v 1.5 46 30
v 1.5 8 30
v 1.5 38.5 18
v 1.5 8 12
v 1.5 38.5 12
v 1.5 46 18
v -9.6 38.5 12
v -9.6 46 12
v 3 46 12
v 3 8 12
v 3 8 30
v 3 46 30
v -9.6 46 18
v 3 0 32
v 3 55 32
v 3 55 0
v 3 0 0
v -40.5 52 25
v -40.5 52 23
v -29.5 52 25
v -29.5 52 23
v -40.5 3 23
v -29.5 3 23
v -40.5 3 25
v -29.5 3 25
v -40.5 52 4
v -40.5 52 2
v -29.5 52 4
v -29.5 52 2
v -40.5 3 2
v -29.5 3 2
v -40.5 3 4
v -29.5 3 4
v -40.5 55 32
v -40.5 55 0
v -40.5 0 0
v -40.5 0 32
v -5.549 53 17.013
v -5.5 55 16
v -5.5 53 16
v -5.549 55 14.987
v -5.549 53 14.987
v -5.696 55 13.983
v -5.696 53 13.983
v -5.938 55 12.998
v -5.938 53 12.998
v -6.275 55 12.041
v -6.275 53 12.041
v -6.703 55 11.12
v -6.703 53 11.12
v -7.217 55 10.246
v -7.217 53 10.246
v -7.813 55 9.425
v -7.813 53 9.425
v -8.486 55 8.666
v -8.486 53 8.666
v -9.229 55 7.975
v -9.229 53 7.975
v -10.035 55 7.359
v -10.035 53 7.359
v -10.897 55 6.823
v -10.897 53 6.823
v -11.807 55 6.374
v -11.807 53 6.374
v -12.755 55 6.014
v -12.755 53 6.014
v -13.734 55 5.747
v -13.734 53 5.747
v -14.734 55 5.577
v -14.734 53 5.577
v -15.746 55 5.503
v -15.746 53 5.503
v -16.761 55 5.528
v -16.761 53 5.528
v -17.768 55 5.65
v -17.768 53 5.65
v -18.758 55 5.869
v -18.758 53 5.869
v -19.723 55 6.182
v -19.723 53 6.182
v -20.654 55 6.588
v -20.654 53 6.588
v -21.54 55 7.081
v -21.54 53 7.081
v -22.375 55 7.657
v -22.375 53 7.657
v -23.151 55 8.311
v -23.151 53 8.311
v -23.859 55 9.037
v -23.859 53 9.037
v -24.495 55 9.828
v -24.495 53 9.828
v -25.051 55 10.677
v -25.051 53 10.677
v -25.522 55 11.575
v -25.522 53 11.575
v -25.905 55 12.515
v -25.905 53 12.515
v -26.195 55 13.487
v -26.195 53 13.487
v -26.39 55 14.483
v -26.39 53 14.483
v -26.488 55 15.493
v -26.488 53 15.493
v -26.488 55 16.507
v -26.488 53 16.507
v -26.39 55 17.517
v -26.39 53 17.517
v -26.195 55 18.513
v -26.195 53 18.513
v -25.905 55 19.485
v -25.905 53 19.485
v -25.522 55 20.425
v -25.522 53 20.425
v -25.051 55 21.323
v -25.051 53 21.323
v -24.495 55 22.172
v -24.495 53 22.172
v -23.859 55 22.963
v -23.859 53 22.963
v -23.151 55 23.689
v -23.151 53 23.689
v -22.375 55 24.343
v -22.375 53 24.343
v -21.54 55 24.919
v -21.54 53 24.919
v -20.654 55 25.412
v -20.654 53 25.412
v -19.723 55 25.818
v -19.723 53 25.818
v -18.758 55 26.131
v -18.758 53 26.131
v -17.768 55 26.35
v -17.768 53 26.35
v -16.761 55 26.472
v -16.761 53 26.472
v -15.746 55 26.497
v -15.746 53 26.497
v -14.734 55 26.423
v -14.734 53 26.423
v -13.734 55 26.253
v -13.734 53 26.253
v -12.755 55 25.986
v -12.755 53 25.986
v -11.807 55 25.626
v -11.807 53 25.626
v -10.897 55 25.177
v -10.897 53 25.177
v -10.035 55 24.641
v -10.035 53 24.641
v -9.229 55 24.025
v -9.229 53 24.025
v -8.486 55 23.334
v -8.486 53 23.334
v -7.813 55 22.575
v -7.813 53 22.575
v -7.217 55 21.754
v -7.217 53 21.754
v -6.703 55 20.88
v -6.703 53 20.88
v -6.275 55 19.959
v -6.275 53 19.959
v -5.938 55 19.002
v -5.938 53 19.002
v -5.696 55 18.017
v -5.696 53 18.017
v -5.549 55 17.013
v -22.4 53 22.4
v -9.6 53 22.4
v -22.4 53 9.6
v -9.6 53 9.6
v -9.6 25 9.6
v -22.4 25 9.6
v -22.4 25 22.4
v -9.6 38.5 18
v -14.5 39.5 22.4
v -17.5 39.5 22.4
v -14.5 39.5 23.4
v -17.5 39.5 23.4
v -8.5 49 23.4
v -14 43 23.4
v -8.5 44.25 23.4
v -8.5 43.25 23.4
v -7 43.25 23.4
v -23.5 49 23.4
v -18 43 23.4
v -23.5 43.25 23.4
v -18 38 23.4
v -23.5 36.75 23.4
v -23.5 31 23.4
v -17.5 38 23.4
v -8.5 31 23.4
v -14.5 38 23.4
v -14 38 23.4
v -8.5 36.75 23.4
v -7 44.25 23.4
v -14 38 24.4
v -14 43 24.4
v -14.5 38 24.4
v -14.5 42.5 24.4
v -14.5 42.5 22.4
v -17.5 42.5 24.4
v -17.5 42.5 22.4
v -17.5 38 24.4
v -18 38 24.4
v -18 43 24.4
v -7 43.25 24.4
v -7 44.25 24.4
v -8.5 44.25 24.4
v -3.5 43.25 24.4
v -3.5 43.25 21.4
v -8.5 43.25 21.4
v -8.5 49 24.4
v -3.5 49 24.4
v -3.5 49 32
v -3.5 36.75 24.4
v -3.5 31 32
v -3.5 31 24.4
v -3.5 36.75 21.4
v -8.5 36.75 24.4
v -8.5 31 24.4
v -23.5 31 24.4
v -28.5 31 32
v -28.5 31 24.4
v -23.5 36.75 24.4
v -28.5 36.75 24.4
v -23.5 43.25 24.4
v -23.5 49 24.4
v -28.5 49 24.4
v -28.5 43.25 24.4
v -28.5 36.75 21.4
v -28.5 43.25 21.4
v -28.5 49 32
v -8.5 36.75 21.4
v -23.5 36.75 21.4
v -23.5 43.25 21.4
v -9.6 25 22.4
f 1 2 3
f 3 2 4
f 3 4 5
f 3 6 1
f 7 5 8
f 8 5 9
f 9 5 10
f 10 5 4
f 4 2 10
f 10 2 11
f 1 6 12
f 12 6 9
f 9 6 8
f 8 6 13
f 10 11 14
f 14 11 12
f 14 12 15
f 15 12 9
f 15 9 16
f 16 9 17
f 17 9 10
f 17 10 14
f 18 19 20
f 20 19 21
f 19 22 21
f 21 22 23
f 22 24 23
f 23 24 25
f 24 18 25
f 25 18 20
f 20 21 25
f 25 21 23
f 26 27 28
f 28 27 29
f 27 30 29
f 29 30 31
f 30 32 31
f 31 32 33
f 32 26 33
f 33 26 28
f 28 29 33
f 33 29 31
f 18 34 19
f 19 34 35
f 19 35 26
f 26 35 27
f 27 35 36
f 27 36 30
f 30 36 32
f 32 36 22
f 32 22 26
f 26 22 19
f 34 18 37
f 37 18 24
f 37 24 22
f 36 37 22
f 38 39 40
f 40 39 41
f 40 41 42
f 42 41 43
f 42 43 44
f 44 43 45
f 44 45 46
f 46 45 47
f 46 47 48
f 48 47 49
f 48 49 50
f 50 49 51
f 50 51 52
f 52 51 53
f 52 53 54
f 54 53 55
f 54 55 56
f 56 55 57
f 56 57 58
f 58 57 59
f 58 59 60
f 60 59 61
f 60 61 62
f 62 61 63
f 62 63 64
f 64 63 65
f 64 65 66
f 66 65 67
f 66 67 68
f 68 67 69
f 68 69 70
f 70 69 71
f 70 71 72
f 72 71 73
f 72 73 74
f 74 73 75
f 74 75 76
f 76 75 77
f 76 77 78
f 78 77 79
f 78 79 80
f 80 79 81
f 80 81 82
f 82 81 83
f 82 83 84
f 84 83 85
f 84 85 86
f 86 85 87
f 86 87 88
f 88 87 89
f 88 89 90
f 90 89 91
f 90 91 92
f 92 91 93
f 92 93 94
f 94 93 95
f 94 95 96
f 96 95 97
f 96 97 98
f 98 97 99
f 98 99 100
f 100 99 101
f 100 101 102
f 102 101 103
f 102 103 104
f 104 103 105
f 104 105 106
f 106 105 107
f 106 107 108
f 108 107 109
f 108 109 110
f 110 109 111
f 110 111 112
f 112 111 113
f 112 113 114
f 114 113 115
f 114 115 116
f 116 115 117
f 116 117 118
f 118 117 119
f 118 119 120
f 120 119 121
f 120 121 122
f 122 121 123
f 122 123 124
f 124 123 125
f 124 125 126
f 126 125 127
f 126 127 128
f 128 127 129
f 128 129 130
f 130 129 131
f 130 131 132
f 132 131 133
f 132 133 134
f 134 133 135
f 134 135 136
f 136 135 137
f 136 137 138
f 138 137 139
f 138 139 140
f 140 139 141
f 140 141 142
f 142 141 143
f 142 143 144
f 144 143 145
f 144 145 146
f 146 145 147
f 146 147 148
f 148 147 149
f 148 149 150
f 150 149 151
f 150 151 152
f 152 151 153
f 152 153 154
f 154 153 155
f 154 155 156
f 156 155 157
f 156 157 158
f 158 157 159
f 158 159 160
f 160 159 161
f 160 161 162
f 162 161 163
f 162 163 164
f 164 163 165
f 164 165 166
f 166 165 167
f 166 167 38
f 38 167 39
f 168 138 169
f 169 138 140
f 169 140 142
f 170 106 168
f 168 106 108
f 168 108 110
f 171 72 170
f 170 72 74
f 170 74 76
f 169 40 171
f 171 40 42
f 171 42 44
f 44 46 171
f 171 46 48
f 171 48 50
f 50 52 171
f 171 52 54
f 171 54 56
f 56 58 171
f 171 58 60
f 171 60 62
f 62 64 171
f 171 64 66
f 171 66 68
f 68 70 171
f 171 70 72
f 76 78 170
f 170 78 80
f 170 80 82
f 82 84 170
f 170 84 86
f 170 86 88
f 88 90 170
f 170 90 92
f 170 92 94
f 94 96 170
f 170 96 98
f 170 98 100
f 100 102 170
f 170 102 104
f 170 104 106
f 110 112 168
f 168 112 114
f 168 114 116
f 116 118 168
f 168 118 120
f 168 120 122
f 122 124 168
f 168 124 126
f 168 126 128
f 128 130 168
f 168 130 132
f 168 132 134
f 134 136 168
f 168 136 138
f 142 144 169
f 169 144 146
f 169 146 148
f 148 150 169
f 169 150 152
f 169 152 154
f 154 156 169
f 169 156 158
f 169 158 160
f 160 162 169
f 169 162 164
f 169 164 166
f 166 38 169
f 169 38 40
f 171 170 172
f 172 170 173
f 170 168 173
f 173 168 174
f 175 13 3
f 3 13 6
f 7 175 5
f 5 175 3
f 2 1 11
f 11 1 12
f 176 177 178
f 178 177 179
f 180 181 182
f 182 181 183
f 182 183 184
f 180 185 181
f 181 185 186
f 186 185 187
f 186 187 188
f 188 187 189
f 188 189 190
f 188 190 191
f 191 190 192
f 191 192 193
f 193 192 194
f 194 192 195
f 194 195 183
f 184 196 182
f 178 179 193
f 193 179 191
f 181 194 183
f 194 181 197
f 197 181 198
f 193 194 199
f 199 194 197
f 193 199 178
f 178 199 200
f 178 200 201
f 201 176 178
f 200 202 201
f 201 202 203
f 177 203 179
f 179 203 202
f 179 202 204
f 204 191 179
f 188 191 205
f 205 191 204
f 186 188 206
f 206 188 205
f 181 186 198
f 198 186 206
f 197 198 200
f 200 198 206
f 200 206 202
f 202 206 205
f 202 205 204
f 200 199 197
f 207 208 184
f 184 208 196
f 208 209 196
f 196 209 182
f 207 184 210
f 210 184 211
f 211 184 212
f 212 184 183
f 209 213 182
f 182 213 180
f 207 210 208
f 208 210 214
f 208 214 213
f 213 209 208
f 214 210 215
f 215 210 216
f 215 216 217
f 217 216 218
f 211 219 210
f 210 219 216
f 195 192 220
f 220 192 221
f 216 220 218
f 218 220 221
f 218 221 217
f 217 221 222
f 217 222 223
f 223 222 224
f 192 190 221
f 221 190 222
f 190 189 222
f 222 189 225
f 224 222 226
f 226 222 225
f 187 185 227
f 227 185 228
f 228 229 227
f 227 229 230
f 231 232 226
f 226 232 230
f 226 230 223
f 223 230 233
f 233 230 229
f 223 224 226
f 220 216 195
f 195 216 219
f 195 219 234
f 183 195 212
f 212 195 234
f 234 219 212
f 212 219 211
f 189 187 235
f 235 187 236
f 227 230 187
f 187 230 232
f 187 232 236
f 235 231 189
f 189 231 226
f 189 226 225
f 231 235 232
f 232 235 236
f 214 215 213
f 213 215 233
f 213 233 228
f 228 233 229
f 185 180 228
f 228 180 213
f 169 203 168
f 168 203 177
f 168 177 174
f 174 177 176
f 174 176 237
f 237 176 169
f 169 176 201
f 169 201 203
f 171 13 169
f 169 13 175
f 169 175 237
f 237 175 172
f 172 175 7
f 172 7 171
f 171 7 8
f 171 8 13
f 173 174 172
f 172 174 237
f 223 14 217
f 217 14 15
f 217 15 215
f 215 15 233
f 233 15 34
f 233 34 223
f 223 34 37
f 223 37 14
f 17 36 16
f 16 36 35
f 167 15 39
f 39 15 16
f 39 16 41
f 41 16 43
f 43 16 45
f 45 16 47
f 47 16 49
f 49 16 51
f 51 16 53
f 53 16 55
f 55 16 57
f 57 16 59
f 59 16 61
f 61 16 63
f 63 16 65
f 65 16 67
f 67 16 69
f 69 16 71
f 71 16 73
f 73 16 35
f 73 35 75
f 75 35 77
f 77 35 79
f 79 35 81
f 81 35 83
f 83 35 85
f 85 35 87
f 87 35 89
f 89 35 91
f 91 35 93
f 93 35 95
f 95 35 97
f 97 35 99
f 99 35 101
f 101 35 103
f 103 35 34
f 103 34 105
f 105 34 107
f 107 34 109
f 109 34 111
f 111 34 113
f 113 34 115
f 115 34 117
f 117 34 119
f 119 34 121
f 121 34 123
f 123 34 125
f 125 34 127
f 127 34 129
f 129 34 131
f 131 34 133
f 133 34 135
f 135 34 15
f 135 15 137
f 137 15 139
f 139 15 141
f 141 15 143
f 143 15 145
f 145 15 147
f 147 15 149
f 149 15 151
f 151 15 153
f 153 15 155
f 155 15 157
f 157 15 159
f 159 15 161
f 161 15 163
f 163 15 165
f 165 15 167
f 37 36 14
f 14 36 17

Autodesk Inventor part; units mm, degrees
ref_plane "YZ Plane" through (0, 0, 0) normal (1, 0, 0) x (0, 1, 0)
ref_plane "XZ Plane" through (0, 0, 0) normal (0, 1, 0) x (-1, 0, 0)
ref_plane "XY Plane" through (0, 0, 0) normal (0, 0, 1) x (1, 0, 0)
sketch "Sketch1" plane through (0, 0, 0) normal (0, 1, 0) x (-1, 0, 0)
  line L0 (32, 32) -> (0, 32)
  line L1 (0, 32) -> (0, 0)
  line L2 (0, 0) -> (32, 0)
  line L3 (32, 0) -> (32, 32)
extrude "Extrusion1" add sketch "Sketch1" along normal blind 55
sketch "Sketch2" plane through (0, 55, 0) normal (0, 1, 0) x (1, 0, 0)
  line L0 (-9.6, -9.6) -> (-22.4, -9.6)
  line L1 (-22.4, -9.6) -> (-22.4, -22.4)
  line L2 (-22.4, -22.4) -> (-9.6, -22.4)
  line L3 (-9.6, -22.4) -> (-9.6, -9.6)
  point P0 (0, 0)
extrude "Extrusion2" cut sketch "Sketch2" against normal blind 30
sketch "Sketch3" plane through (-32, 0, 32) normal (0, 0, 1) x (1, 0, 0)
  line L0 (3.5, 49) -> (28.5, 49)
  line L1 (28.5, 49) -> (28.5, 31)
  line L2 (28.5, 31) -> (3.5, 31)
  line L3 (3.5, 31) -> (3.5, 49)
  line L4 (3.5, 49) -> (3.5, 43.25)
  line L5 (3.5, 36.75) -> (3.5, 43.25)
  line L6 (28.5, 49) -> (28.5, 43.25)
  line L7 (28.5, 36.75) -> (28.5, 43.25)
  line L8 (3.5, 43.25) -> (3.5, 36.75)
  line L9 (28.5, 43.25) -> (28.5, 36.75)
  point P0 (32, 0)
extrude "Extrusion3" cut sketch "Sketch3" against normal blind 8.6
sketch "Sketch4" plane through (-32, 0, 23.4) normal (0, 0, 1) x (1, 0, 0)
  line L0 (3.5, 49) -> (28.5, 49) projected
  line L1 (3.5, 49) -> (3.5, 43.25)
  line L2 (28.5, 31) -> (3.5, 31) projected
  line L3 (3.5, 36.75) -> (3.5, 31)
  line L4 (3.5, 31) -> (28.5, 31)
  line L5 (28.5, 31) -> (28.5, 36.75)
  line L6 (28.5, 49) -> (28.5, 31) projected
  line L7 (28.5, 43.25) -> (28.5, 49)
  line L8 (28.5, 49) -> (3.5, 49)
  point P0 (32, 0)
sketch "Sketch5" plane through (-32, 0, 23.4) normal (0, 0, 1) x (1, 0, 0)
  line L0 (3.5, 43.25) -> (8.5, 43.25)
  line L1 (8.5, 43.25) -> (8.5, 36.75)
  line L2 (8.5, 36.75) -> (3.5, 36.75)
  line L3 (3.5, 36.75) -> (3.5, 43.25)
  point P0 (32, 0)
sketch "Sketch6" plane through (-32, 0, 23.4) normal (0, 0, 1) x (1, 0, 0)
  line L0 (28.5, 43.25) -> (23.5, 43.25)
  line L1 (23.5, 43.25) -> (23.5, 36.75)
  line L2 (23.5, 36.75) -> (28.5, 36.75)
  line L3 (28.5, 36.75) -> (28.5, 43.25)
  point P0 (32, 0)
extrude "Extrusion4" cut sketch "Sketch5" against normal blind 2
extrude "Extrusion5" cut sketch "Sketch6" against normal blind 2
sketch "Sketch7" plane through (-32, 0, 23.4) normal (0, 0, 1) x (1, 0, 0)
  line L0 (3.5, 43.25) -> (8.5, 43.25) projected
  line L1 (3.5, 43.25) -> (3.5, 49) projected
  line L2 (8.5, 43.25) -> (3.5, 43.25)
  line L3 (3.5, 43.25) -> (3.5, 49)
  line L4 (3.5, 49) -> (8.5, 49)
  line L5 (8.5, 49) -> (8.5, 43.25)
  point P0 (32, 0)
sketch "Sketch8" plane through (-32, 0, 23.4) normal (0, 0, 1) x (1, 0, 0)
  line L0 (8.5, 36.75) -> (3.5, 36.75) projected
  line L1 (28.5, 31) -> (3.5, 31) projected
  line L2 (8.5, 36.75) -> (3.5, 36.75)
  line L3 (3.5, 36.75) -> (3.5, 31)
  line L4 (3.5, 31) -> (8.5, 31)
  line L5 (8.5, 31) -> (8.5, 36.75)
  point P0 (32, 0)
sketch "Sketch9" plane through (-32, 0, 23.4) normal (0, 0, 1) x (1, 0, 0)
  line L0 (28.5, 36.75) -> (23.5, 36.75) projected
  line L1 (28.5, 31) -> (3.5, 31) projected
  line L2 (23.5, 36.75) -> (28.5, 36.75)
  line L3 (28.5, 36.75) -> (28.5, 31)
  line L4 (28.5, 31) -> (23.5, 31)
  line L5 (23.5, 31) -> (23.5, 36.75)
  point P0 (32, 0)
sketch "Sketch10" plane through (-32, 0, 23.4) normal (0, 0, 1) x (1, 0, 0)
  line L0 (23.5, 43.25) -> (28.5, 43.25) projected
  line L1 (28.5, 49) -> (28.5, 43.25) projected
  line L2 (23.5, 43.25) -> (28.5, 43.25)
  line L3 (28.5, 43.25) -> (28.5, 49)
  line L4 (28.5, 49) -> (23.5, 49)
  line L5 (23.5, 49) -> (23.5, 43.25)
  point P0 (32, 0)
extrude "Extrusion6" add sketch "Sketch7" along normal blind 1
extrude "Extrusion7" add sketch "Sketch8" along normal blind 1
extrude "Extrusion8" add sketch "Sketch9" along normal blind 1
extrude "Extrusion9" add sketch "Sketch10" along normal blind 1
sketch "Sketch11" plane through (-32, 0, 24.4) normal (0, 0, 1) x (1, 0, 0)
  line L0 (23.5, 43.25) -> (28.5, 43.25) projected
  line L1 (23.5, 43.25) -> (25, 43.25)
  line L2 (25, 43.25) -> (25, 44.25)
  line L3 (25, 44.25) -> (23.5, 44.25)
  line L4 (23.5, 44.25) -> (23.5, 43.25)
  point P0 (32, 0)
extrude "Extrusion10" cut sketch "Sketch11" against normal blind 1
sketch "Sketch12" plane through (-32, 0, 23.4) normal (0, 0, 1) x (1, 0, 0)
  line L0 (8.5, 49) -> (8.5, 43.25) projected
  line L1 (23.5, 31) -> (8.5, 31) projected
  line L2 (23.5, 49) -> (23.5, 44.25) projected
  point P0 (32, 0)
sketch "Sketch13" plane through (-32, 0, 23.4) normal (0, 0, 1) x (1, 0, 0)
  point P0 (32, 0)
sketch "Sketch14" plane through (-32, 0, 23.4) normal (0, 0, 1) x (1, 0, 0)
  line L0 (23.5, 44.25) -> (23.5, 49) projected
  line L1 (23.5, 49) -> (17.5, 49)
  line L2 (14.5, 43) -> (17.5, 43)
  line L3 (17.5, 38) -> (18, 38)
  line L4 (18, 38) -> (18, 43)
  line L5 (18, 43) -> (14, 43)
  line L6 (14, 43) -> (14, 38)
  line L7 (14, 38) -> (14.5, 38)
  line L8 (14.5, 38) -> (14.5, 42)
  line L9 (3.5, 43.25) -> (8.5, 43.25) projected
  line L10 (14.5, 42) -> (14.5, 42.5)
  line L11 (14.5, 42.5) -> (17.5, 42.5)
  line L12 (17.5, 42.5) -> (17.5, 38)
  point P0 (32, 0)
extrude "Extrusion11" add sketch "Sketch14" along normal blind 1
sketch "Sketch15" plane through (-32, 0, 23.4) normal (0, 0, 1) x (1, 0, 0)
  line L0 (14.5, 42.5) -> (14.5, 38) projected
  line L1 (14.5, 42.5) -> (17.5, 42.5)
  line L2 (17.5, 42.5) -> (17.5, 39.5)
  line L3 (17.5, 39.5) -> (14.5, 39.5)
  line L4 (14.5, 39.5) -> (14.5, 42.5)
  point P0 (32, 0)
extrude "Extrusion12" cut sketch "Sketch15" against normal blind 7.1
sketch "Sketch16" plane through (-32, 0, 32) normal (0, 0, 1) x (1, 0, 0)
  point P0 (32, 0)
sketch "Sketch17" plane through (0, 0, 32) normal (1, 0, 0) x (0, 0, -1)
  line L0 (2, 46) -> (20, 46)
  line L1 (20, 46) -> (20, 8)
  line L2 (20, 8) -> (2, 8)
  line L3 (2, 8) -> (2, 46)
  point P0 (32, 0)
extrude "Extrusion13" cut sketch "Sketch17" against normal blind 1.5
sketch "Sketch18" plane through (-1.5, 0, 32) normal (1, 0, 0) x (0, 0, -1)
  line L0 (20, 38.5) -> (14, 38.5)
  line L1 (14, 38.5) -> (14, 46)
  line L2 (14, 46) -> (20, 46)
  line L3 (20, 46) -> (20, 38.5)
  point P0 (32, 0)
extrude "Extrusion14" cut sketch "Sketch18" against normal blind 8.1
sketch "Sketch19" plane through (0, 55, 0) normal (0, 1, 0) x (1, 0, 0)
  circle A0 centre (-16, -16) radius 10.5
  point P0 (0, 0)
sketch "Sketch20" plane through (0, 55, 0) normal (0, 1, 0) x (1, 0, 0)
  point P0 (0, 0)
extrude "Extrusion15" cut sketch "Sketch19" against normal blind 2
sketch "Sketch21" plane through (-32, 0, 0) normal (-1, 0, 0) x (0, 0, 1)
  line L0 (32, 0) -> (32, 55) projected
  line L1 (0, 0) -> (32, 0)
  line L2 (32, 0) -> (32, 55)
  line L3 (32, 55) -> (0, 55)
  line L4 (0, 55) -> (0, 0)
extrude "Extrusion16" add sketch "Sketch21" along normal blind 8.5
sketch "Sketch22" plane through (-40.5, 0, 0) normal (-1, 0, 0) x (0, 0, 1)
  line L0 (2, 3) -> (4, 3)
  line L1 (4, 3) -> (4, 52)
  line L2 (4, 52) -> (2, 52)
  line L3 (2, 52) -> (2, 3)
  line L4 (23, 3) -> (25, 3)
  line L5 (25, 3) -> (25, 52)
  line L6 (25, 52) -> (23, 52)
  line L7 (23, 52) -> (23, 3)
  point P0 (0, 0)
extrude "Extrusion17" cut sketch "Sketch22" against normal blind 11
sketch "Sketch23" plane through (0, 0, 32) normal (1, 0, 0) x (0, 0, -1)
  line L0 (0, 0) -> (32, 0) projected
  line L1 (0, 55) -> (32, 55) projected
  line L2 (0, 0) -> (32, 0)
  line L3 (32, 0) -> (32, 55)
  line L4 (32, 55) -> (0, 55)
  line L5 (0, 55) -> (0, 0)
sketch "Sketch24" plane through (0, 0, 32) normal (1, 0, 0) x (0, 0, -1)
  line L0 (20, 8) -> (2, 8) projected
  line L1 (20, 46) -> (20, 8) projected
  line L2 (2, 8) -> (20, 8)
  line L3 (20, 8) -> (20, 46)
  line L4 (20, 46) -> (2, 46)
  line L5 (2, 46) -> (2, 8)
  point P0 (32, 0)
extrude "Extrusion18" add sketch "Sketch23" along normal blind 3
extrude "Extrusion19" cut sketch "Sketch24" along normal blind 3
sketch "Sketch25" plane through (-1.5, 0, 32) normal (1, 0, 0) x (0, 0, -1)
  line L0 (2, 8) -> (2, 46) projected
  line L1 (20, 8) -> (2, 8) projected
  line L2 (2, 8) -> (20, 8)
  line L3 (20, 38.5) -> (20, 8) projected
  line L4 (20, 8) -> (20, 38.5)
  line L5 (14, 38.5) -> (14, 46) projected
  line L6 (20, 38.5) -> (14, 38.5)
  line L7 (14, 38.5) -> (14, 46)
  line L8 (14, 46) -> (2, 46)
  point P0 (32, 0)
extrude "Extrusion20" add sketch "Sketch25" along normal blind 3
properties part number "Cuvette Holder v2_3DPrint"
